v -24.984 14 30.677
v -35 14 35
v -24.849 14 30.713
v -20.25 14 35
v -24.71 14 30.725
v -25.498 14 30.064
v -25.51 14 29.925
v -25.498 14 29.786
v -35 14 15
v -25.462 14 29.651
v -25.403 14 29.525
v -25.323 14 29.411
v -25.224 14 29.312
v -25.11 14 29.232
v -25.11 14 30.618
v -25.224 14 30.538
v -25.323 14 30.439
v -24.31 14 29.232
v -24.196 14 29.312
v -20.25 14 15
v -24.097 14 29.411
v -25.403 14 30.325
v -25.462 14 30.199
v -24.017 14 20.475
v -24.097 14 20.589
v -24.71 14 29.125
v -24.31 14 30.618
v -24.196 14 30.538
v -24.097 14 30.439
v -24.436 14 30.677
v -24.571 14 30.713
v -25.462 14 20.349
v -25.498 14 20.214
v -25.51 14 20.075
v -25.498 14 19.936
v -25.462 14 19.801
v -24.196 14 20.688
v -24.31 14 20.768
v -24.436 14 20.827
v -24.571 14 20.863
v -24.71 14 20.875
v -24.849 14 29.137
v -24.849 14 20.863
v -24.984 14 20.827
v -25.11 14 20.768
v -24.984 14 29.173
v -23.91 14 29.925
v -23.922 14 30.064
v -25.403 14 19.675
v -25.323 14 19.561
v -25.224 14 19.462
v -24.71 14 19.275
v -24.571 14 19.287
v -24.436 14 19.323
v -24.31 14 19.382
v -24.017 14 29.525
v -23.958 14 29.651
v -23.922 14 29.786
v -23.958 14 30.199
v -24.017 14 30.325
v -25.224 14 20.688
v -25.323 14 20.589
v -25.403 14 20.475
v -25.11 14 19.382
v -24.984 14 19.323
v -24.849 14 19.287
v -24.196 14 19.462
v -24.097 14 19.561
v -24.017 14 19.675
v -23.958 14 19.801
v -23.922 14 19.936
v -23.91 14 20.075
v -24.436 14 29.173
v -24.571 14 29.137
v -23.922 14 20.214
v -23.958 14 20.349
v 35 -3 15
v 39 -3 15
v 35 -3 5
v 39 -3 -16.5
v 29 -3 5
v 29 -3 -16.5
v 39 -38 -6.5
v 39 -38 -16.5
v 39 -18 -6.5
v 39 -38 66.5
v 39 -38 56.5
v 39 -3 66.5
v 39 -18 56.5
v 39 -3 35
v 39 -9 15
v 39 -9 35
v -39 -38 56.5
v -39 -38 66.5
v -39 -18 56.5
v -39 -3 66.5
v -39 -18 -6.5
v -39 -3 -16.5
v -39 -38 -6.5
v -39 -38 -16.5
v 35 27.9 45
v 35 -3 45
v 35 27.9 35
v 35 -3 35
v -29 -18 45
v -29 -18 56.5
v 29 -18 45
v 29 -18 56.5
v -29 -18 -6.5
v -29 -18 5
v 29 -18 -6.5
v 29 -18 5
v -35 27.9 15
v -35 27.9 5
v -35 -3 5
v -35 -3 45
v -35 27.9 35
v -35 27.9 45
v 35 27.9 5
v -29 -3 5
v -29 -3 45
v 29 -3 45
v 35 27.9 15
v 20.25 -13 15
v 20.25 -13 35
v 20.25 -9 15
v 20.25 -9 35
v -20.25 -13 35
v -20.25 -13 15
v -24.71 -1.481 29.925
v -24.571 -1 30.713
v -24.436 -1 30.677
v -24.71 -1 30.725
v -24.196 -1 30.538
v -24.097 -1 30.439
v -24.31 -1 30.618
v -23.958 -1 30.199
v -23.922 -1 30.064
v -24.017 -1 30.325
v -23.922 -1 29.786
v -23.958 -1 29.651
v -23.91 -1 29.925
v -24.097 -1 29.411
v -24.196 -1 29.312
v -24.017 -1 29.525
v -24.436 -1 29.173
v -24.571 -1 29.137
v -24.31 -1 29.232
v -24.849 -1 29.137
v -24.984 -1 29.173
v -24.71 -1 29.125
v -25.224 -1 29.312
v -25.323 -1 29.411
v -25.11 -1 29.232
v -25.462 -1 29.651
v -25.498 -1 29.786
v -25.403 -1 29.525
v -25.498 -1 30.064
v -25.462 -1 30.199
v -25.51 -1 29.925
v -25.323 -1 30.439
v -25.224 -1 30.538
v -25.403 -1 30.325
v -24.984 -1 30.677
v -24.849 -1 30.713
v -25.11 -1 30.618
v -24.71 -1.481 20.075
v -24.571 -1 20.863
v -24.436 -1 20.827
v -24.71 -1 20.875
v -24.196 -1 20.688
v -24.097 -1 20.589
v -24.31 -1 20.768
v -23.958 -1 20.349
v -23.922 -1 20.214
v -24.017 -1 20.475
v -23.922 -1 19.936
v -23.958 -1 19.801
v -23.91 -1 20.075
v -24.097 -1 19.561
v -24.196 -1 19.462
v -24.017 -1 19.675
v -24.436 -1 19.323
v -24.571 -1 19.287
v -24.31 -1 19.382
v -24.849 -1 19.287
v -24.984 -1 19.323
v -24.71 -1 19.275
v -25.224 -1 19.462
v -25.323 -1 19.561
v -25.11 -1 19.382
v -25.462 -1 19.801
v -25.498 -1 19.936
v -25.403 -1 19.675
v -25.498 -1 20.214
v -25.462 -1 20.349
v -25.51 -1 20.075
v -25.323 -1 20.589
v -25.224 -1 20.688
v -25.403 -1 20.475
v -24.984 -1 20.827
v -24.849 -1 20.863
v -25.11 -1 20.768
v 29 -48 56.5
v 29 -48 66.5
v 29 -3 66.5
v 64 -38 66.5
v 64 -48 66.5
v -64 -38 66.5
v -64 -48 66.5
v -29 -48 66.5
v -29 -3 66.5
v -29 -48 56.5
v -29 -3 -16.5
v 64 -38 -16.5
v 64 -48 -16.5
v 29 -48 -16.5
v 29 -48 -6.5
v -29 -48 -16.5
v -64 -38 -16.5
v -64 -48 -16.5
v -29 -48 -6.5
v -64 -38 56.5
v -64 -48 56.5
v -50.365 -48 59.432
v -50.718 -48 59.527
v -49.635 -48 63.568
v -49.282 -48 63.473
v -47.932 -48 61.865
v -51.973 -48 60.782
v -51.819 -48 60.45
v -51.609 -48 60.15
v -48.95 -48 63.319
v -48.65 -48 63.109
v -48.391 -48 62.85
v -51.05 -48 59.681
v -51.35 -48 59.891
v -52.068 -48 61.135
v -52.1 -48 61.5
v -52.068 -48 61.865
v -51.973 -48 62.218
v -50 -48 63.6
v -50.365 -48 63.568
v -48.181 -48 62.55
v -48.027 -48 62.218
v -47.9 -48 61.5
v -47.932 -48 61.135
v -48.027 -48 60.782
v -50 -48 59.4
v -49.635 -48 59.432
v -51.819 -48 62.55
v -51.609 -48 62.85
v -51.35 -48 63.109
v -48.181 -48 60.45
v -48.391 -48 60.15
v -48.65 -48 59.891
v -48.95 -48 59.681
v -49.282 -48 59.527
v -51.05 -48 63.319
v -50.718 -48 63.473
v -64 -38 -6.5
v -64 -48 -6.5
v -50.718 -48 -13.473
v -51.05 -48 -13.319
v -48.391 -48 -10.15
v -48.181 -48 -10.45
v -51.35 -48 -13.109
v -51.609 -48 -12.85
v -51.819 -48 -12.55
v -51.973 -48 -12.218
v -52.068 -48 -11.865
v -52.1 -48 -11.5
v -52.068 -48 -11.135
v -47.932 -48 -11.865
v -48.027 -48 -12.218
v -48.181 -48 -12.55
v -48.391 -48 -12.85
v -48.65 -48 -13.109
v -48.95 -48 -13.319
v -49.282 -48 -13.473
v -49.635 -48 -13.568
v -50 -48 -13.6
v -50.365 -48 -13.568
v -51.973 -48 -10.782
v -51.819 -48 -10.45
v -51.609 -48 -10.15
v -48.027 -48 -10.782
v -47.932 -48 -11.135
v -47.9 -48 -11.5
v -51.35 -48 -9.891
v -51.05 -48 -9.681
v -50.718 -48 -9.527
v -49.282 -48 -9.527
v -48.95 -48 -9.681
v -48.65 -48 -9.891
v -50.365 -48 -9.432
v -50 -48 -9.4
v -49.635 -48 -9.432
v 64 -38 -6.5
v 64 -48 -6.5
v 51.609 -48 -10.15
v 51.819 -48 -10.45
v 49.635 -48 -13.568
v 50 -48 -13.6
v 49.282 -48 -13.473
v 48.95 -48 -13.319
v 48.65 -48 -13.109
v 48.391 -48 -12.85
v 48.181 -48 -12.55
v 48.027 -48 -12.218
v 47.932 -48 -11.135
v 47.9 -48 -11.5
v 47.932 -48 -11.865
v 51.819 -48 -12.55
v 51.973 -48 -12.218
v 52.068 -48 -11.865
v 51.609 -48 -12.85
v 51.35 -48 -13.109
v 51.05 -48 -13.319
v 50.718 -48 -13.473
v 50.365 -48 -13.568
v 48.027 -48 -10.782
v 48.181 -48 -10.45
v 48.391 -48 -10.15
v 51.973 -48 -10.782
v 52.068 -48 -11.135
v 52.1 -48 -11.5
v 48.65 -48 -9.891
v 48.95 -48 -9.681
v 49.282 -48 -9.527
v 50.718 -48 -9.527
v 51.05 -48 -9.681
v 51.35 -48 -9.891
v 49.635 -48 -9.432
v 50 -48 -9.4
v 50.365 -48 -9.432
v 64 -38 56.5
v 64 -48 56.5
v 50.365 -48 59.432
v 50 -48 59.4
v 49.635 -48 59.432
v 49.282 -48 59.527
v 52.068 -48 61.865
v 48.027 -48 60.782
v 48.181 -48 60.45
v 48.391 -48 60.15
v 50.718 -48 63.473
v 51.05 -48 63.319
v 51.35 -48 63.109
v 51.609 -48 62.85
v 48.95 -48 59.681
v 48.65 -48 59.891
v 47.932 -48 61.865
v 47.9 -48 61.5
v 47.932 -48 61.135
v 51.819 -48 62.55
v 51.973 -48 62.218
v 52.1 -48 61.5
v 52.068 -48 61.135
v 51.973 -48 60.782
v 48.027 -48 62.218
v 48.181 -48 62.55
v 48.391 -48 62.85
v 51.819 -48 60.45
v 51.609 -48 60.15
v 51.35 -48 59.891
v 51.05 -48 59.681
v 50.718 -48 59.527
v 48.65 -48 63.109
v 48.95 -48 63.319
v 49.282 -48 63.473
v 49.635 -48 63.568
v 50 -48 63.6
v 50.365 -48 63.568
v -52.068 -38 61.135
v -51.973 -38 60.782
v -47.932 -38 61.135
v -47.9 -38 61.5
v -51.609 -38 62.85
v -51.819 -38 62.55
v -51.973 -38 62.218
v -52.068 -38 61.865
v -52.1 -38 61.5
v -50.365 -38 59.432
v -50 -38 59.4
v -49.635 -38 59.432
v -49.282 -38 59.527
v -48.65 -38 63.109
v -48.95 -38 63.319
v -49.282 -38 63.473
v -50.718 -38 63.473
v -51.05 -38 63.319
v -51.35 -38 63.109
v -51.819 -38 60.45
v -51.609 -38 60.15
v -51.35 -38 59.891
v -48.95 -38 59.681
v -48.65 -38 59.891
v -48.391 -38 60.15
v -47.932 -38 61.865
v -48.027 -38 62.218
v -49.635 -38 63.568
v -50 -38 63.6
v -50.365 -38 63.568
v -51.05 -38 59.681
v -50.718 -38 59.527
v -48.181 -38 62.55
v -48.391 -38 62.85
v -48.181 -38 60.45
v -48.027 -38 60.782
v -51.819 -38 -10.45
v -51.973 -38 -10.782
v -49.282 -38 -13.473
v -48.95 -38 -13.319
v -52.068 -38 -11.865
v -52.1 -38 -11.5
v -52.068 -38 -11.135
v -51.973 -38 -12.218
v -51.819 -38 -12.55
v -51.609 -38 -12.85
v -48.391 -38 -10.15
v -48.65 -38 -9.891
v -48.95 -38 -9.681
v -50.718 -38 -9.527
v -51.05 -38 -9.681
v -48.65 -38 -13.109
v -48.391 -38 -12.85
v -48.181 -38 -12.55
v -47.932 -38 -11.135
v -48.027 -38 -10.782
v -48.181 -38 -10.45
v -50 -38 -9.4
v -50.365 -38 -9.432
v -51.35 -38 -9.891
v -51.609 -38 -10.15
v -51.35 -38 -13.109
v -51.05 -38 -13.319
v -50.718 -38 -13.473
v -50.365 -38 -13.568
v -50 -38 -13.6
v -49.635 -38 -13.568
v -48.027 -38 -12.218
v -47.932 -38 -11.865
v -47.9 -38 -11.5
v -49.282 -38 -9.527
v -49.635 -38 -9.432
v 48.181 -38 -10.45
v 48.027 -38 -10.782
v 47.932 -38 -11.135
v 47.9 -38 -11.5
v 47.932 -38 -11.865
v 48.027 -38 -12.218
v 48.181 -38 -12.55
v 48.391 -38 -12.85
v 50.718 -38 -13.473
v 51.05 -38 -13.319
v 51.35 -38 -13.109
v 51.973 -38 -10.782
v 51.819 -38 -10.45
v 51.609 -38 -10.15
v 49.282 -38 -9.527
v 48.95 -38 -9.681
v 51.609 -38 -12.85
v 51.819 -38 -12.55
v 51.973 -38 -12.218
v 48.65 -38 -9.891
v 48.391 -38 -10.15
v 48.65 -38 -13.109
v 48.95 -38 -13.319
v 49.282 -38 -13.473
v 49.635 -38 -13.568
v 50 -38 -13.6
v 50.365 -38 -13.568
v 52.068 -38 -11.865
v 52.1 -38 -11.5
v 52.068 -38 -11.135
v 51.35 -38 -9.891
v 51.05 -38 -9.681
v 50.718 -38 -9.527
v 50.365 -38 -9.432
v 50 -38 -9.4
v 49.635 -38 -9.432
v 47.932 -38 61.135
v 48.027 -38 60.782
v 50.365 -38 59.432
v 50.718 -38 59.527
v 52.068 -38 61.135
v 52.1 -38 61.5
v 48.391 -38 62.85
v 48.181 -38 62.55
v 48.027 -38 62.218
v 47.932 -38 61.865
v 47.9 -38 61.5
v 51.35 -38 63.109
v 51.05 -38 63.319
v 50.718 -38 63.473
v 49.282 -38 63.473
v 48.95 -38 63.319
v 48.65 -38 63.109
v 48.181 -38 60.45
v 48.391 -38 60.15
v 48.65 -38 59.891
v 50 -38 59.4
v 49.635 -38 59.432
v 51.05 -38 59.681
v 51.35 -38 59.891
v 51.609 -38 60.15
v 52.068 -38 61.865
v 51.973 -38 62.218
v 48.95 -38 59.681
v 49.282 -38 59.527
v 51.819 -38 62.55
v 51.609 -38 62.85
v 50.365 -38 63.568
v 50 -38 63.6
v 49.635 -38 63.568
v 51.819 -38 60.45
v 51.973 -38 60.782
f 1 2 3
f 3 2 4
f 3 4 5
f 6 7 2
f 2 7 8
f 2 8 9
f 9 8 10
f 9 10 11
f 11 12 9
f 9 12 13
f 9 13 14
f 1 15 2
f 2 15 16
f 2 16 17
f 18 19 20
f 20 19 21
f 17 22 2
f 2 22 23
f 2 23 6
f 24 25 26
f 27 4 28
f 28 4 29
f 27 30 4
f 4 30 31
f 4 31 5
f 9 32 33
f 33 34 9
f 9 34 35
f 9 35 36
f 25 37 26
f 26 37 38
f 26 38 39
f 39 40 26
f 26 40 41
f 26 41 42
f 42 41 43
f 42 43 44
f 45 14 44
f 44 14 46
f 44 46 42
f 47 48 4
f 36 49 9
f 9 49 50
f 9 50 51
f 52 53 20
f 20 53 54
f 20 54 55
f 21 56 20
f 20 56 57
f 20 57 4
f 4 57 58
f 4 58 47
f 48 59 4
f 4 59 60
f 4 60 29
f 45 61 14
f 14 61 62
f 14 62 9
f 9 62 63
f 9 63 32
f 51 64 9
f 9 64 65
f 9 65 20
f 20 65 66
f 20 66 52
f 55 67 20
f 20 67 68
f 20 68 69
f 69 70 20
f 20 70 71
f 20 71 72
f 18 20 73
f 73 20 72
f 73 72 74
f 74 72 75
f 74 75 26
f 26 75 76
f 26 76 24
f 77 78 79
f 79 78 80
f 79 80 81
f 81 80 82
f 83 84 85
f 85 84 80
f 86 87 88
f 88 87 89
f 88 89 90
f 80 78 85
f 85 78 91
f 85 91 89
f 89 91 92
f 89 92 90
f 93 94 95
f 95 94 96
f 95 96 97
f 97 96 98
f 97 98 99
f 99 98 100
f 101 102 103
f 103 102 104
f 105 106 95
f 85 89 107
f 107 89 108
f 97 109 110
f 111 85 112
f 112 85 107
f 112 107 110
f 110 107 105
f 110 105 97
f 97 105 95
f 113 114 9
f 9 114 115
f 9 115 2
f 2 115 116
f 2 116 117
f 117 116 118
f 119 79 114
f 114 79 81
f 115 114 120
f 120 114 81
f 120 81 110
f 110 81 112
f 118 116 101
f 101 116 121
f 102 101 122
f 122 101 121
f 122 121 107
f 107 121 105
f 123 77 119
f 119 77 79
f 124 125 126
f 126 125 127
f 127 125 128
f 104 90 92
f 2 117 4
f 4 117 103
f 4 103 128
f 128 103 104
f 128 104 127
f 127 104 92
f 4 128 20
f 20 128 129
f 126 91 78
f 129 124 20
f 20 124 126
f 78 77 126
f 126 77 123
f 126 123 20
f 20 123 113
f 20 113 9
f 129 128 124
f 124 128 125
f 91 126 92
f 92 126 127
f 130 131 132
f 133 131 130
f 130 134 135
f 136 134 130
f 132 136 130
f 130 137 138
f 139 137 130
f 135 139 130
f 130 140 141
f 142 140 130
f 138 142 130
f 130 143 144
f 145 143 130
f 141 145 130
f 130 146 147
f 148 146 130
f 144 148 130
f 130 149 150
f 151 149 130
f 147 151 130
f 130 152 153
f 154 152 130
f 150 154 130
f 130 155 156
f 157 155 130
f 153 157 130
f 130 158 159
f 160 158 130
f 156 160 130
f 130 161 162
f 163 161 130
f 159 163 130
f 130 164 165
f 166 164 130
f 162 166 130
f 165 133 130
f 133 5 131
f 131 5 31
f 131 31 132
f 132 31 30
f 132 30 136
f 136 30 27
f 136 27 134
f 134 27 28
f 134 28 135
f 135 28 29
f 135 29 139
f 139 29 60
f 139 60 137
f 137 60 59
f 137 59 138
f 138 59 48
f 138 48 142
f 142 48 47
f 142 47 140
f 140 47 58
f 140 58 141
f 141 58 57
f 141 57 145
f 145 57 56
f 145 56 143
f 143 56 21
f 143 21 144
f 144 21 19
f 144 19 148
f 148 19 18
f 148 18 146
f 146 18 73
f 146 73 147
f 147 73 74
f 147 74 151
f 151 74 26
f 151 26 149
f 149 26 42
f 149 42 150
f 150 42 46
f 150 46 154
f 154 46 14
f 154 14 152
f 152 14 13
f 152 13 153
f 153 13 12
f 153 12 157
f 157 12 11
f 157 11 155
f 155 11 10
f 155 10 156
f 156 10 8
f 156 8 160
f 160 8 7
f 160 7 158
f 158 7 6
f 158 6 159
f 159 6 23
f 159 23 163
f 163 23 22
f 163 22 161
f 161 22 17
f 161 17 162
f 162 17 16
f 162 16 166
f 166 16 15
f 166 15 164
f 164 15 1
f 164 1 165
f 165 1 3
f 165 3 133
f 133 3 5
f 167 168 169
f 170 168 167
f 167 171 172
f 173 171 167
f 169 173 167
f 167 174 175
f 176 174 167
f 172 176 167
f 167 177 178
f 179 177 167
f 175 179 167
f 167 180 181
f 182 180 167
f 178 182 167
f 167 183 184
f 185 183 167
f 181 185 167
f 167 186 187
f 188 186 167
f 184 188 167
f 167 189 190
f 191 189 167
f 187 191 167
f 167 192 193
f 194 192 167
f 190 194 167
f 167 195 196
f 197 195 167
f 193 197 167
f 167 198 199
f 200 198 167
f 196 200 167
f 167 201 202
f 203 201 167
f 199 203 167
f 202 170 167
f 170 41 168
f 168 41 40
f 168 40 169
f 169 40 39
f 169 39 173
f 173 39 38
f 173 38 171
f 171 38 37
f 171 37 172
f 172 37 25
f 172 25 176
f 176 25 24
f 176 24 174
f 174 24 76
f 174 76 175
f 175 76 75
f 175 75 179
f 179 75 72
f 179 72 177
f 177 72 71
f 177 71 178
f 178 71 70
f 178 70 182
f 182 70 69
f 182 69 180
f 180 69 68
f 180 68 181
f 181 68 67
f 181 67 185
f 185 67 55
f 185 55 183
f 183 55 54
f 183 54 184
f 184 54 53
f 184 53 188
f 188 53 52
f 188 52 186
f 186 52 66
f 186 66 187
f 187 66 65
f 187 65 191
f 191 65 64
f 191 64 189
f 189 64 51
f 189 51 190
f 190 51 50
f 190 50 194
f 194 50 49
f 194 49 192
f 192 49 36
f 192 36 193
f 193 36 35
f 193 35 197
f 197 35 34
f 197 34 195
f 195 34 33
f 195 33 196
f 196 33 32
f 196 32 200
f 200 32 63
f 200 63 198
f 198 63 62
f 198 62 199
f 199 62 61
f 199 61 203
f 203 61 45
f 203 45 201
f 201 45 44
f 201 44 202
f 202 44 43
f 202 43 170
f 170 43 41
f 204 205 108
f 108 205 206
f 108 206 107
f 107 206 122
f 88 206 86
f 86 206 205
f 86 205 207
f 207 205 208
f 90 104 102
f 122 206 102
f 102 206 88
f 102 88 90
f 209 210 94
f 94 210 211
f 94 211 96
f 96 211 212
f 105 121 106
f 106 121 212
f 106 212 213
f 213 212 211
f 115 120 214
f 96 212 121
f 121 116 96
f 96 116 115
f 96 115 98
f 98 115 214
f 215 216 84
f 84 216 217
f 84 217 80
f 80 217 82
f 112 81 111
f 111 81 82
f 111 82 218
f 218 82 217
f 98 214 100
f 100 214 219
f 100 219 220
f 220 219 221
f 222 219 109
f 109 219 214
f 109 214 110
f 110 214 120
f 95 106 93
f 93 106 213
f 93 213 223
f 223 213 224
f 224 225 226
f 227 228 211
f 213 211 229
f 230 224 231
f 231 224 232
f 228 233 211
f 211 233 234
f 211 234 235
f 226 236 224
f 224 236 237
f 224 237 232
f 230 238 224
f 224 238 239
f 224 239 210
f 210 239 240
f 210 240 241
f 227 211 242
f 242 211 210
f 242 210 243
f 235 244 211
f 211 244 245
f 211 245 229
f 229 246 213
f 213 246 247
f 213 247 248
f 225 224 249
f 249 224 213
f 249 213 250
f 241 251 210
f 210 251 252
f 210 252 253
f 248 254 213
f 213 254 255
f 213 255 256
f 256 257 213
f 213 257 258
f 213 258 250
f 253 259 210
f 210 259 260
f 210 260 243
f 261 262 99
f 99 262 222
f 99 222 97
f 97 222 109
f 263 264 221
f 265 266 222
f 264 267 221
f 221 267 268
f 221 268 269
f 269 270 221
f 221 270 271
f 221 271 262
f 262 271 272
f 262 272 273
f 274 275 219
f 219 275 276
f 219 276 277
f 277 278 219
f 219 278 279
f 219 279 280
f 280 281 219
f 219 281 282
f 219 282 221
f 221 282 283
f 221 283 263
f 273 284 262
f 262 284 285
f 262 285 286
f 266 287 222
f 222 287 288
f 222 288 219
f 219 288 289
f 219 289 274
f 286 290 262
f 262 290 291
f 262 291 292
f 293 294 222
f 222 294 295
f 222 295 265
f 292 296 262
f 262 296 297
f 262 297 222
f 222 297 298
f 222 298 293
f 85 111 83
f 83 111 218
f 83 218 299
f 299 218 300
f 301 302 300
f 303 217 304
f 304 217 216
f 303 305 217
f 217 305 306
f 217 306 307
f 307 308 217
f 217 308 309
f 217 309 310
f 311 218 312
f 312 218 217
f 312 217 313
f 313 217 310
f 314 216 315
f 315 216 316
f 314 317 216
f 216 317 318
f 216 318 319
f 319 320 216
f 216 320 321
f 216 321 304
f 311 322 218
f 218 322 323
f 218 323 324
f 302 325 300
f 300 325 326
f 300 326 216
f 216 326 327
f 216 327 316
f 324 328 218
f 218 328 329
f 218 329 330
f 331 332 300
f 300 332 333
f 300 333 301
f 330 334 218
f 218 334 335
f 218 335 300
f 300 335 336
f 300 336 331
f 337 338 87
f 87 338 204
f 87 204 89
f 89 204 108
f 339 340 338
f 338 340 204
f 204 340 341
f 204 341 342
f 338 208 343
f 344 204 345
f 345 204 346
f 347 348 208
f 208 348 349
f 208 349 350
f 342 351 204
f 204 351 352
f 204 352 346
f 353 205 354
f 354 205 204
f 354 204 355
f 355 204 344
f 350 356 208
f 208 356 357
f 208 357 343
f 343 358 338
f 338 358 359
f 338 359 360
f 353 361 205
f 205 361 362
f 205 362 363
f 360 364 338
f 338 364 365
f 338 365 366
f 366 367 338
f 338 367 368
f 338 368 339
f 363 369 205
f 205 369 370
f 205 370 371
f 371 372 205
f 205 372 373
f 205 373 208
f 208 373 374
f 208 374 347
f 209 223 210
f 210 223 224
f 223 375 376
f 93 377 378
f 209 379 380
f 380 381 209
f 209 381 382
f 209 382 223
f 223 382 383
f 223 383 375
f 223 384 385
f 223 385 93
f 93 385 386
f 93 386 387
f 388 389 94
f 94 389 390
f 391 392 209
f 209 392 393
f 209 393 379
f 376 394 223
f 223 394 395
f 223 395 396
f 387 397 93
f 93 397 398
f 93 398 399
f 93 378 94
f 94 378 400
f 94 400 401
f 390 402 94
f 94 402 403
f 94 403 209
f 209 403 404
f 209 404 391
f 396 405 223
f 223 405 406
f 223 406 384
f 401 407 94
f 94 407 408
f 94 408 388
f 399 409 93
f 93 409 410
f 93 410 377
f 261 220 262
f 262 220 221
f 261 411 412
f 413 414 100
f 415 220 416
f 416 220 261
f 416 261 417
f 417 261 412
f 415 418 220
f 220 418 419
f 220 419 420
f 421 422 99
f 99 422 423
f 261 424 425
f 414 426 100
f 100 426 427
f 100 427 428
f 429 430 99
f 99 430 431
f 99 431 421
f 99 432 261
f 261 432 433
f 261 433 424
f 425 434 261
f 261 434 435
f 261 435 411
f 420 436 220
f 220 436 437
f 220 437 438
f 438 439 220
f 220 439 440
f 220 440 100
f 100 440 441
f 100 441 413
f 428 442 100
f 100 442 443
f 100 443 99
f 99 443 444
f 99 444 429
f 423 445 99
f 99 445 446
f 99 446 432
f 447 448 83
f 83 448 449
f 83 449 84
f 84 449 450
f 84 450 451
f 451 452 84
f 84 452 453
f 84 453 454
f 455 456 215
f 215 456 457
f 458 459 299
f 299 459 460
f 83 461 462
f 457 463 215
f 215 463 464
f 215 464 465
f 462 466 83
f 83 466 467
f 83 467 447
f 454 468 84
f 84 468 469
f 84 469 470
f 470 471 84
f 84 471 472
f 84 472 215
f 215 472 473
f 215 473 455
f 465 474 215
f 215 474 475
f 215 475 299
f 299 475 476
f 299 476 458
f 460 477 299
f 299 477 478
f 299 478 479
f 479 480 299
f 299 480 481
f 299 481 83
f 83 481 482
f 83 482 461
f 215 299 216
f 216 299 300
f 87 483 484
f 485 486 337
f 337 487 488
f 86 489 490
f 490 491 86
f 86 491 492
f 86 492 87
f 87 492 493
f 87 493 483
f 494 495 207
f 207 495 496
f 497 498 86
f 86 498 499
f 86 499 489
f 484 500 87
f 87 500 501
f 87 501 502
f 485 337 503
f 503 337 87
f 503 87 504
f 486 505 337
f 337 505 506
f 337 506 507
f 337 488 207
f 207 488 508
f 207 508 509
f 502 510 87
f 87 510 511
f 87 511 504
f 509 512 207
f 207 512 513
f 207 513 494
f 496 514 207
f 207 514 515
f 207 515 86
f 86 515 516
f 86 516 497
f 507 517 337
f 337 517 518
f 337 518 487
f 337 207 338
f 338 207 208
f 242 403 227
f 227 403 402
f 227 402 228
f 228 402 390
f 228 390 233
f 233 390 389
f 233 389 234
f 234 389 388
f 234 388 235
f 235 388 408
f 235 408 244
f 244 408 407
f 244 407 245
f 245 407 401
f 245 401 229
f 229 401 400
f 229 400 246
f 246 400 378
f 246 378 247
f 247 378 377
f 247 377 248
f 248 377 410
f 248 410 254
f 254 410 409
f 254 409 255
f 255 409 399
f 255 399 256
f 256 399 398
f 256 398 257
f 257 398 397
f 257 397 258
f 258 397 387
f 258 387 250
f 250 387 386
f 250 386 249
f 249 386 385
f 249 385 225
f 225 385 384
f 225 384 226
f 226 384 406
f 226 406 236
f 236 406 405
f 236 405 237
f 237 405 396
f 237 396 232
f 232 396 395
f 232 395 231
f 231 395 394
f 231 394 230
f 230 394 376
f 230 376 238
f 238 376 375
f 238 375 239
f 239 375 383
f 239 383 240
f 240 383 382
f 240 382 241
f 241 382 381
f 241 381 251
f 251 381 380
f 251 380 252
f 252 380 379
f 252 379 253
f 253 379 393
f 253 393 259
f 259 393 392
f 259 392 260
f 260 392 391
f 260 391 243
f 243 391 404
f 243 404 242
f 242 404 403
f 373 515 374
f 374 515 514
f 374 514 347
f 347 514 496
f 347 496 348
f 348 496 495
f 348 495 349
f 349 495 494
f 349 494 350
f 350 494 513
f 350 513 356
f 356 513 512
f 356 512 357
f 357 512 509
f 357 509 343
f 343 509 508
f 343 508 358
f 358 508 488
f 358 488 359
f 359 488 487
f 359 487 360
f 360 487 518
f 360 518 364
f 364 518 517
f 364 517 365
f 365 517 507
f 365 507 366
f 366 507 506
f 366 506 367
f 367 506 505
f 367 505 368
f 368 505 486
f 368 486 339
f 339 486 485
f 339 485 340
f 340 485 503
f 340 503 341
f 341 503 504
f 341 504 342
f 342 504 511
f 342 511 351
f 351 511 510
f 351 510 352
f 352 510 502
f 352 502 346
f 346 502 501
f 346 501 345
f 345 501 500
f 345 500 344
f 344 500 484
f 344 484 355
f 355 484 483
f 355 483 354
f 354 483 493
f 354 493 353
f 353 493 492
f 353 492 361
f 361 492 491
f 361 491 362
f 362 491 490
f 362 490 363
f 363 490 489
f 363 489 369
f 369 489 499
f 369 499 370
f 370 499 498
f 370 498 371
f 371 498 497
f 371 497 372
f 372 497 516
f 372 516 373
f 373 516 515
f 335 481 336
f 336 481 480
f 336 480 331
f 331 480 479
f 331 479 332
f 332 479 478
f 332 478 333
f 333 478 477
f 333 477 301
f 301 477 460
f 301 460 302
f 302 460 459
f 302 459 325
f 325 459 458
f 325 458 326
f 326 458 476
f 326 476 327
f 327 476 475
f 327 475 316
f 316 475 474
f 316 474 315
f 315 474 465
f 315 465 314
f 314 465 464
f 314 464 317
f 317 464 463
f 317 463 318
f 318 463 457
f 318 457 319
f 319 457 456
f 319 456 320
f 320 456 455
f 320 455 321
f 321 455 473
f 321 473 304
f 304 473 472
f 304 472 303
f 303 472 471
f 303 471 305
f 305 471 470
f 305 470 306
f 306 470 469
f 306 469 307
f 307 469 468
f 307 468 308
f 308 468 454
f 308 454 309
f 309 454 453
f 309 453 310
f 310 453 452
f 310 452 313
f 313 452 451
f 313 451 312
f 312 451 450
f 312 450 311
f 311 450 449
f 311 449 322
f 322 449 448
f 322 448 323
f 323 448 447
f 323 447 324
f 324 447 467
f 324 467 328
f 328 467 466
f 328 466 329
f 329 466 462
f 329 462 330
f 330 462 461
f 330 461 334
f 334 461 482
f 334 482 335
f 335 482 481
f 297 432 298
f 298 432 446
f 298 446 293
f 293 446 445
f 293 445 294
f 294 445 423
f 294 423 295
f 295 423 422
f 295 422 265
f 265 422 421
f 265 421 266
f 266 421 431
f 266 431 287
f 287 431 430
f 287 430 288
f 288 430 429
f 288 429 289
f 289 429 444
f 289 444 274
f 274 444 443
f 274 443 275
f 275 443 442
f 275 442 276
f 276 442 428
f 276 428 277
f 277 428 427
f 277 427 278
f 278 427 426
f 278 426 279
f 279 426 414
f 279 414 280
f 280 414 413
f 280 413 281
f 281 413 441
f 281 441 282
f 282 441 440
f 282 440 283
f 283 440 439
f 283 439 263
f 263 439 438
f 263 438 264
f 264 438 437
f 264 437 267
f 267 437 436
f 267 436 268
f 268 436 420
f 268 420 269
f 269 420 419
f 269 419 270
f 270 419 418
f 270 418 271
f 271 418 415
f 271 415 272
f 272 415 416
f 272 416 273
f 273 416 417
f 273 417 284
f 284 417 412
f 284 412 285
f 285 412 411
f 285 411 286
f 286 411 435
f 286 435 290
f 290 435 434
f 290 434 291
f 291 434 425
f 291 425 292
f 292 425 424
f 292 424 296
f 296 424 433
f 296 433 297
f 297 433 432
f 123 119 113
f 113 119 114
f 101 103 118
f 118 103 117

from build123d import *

# Parameters (mm, degrees)
ESQUISSE1_W                          = 70
ESQUISSE1_H                          = 50
BOSS_EXTRU_1_DEPTH                   = 50
ESQUISSE2_W                          = 40.5
ESQUISSE2_H                          = 20
ENL_V_MAT_EXTRU_1_DEPTH              = 38
ESQUISSE3_W                          = 9.502474521
ESQUISSE3_H                          = 20
ENL_V_MAT_EXTRU_2_DEPTH              = 11
ESQUISSE4_R                          = 60.076490873
ESQUISSE4_R_2                        = 49.5
BOSS_EXTRU_2_DEPTH                   = 50
ESQUISSE5_W                          = 60
ESQUISSE5_H                          = 40
ENL_V_MAT_EXTRU_3_DEPTH              = 24
R_P_TITION_CIRCULAIRE1_COUNT         = 5
ESQUISSE12_W                         = 74.3
ESQUISSE12_H                         = 74.3
BOSS_EXTRU_7_DEPTH                   = 28
ESQUISSE13_W                         = 160
ESQUISSE13_H                         = 18
BOSS_EXTRU_8_DEPTH                   = 10
ESQUISSE15_R                         = 60.076490873
BOSS_EXTRU_9_DEPTH                   = 5
ESQUISSE16_W                         = 60
ESQUISSE16_H                         = 70
ENL_V_MAT_EXTRU_4_DEPTH              = 28
ENL_V_MAT_EXTRU_5_REACH              = 156.276
ESQUISSE17_W                         = 60.3
ESQUISSE17_H                         = 28
ENL_V_MAT_EXTRU_6_REACH              = 138.609
ESQUISSE18_W                         = 54.3
ESQUISSE18_H                         = 15.510808694
TROU_TARAUD_M5X0_82_D                = 4.2
TROU_TARAUD_M5X0_82_DEPTH            = 54.927
TROU_TARAUD_M5X0_82_TIP              = 1.2618073
TROU_TARAUD_M5X0_83_D                = 4.2
TROU_TARAUD_M5X0_83_DEPTH            = 54.927
TROU_TARAUD_M5X0_83_TIP              = 1.2618073
CONG_1_R                             = 10
ESQUISSE25_W                         = 16.470730929
ESQUISSE25_H                         = 20
ENL_V_MAT_EXTRU_7_DEPTH              = 34
TROU_TARAUD_M2X0_41_D                = 1.6
TROU_TARAUD_M2X0_41_DEPTH            = 15
TROU_TARAUD_M2X0_41_TIP              = 0.480688495
ESQUISSE28_W                         = 183.397651828
ESQUISSE28_H                         = 123.598647098
ESQUISSE28_W_2                       = 70
ESQUISSE28_H_2                       = 50
ENL_V_MAT_EXTRU_9_DEPTH              = 78
ESQUISSE29_W                         = 76.828034685
ESQUISSE29_H                         = 56.156318878
ENL_V_MAT_EXTRU_10_DEPTH             = 7
ESQUISSE30_W                         = 96.69394631
ESQUISSE30_H                         = 62.030078765
ESQUISSE30_W_2                       = 70
ESQUISSE30_H_2                       = 40
ENL_V_MAT_EXTRU_12_DEPTH             = 43
BOSS_EXTRU_10_DEPTH                  = 15
ESQUISSE35_W                         = 10
ESQUISSE35_H                         = 10
BOSS_EXTRU_12_DEPTH                  = 30
ESQUISSE36_W                         = 10
ESQUISSE36_H                         = 15
BOSS_EXTRU_13_DEPTH                  = 83
ESQUISSE37_W                         = 35
ESQUISSE37_H                         = 10
ESQUISSE37_R                         = 2
BOSS_EXTRU_14_DEPTH                  = 10
ENL_V_MAT_EXTRU_13_REACH             = 119.577
ESQUISSE38_W                         = 51.96710629
ESQUISSE38_H                         = 11.935029196
ENL_V_MAT_EXTRU_13_DIRECTION_2_REACH = 119.577
TROU_TARAUD_M5X0_84_D                = 4.2
ESQUISSE41_W                         = 20
ESQUISSE41_H                         = 6
ENL_V_MAT_EXTRU_14_DEPTH             = 10
ESQUISSE42_W                         = 70
ESQUISSE42_H                         = 10
BOSS_EXTRU_15_DEPTH                  = 13.9


with BuildPart() as part:
    # Esquisse1 → Boss.-Extru.1 (new body)
    with BuildSketch(Plane.XY):
        Rectangle(ESQUISSE1_W, ESQUISSE1_H)
    extrude(amount=BOSS_EXTRU_1_DEPTH)

    # Esquisse2 → Enlèv. mat.-Extru.1 (cut)
    with BuildSketch(Plane(origin=(0, 25, 0), x_dir=(1, 0, 0), z_dir=(0, 1, 0))):
        with Locations((0, -25)):
            Rectangle(ESQUISSE2_W, ESQUISSE2_H)
    extrude(amount=-ENL_V_MAT_EXTRU_1_DEPTH, mode=Mode.SUBTRACT)

    # Esquisse3 → Enlèv. mat.-Extru.2 (cut)
    with BuildSketch(Plane(origin=(0, 25, 0), x_dir=(1, 0, 0), z_dir=(0, 1, 0))):
        with Locations((25.001237261, -25)):
            Rectangle(ESQUISSE3_W, ESQUISSE3_H)
        with Locations((-25.001237261, -25)):
            Rectangle(ESQUISSE3_W, ESQUISSE3_H)
    extrude(amount=-ENL_V_MAT_EXTRU_2_DEPTH, mode=Mode.SUBTRACT)

    # Esquisse4 → Boss.-Extru.2 (add)
    # profile 1 of 7: a face of its own
    with BuildSketch(Plane(origin=(0, 25, 0), x_dir=(1, 0, 0), z_dir=(0, 1, 0))):
        with Locations(Location((0, -25.176679726, 0), (0, 0, 270))):
            Circle(ESQUISSE4_R)
        with Locations(Location((0, -25.176679726, 0), (0, 0, 270))):
            Circle(ESQUISSE4_R_2, mode=Mode.SUBTRACT)
    # profile 2 of 7: a face of its own
    with BuildSketch(Plane(origin=(0, 25, 0), x_dir=(1, 0, 0), z_dir=(0, 1, 0))):
        with BuildLine():
            ThreePointArc((24.673928965, -50), (32.315534297, -38.619381951), (35, -25.176679726))
            ThreePointArc((35, -25.176679726), (32.217729855, -11.501231543), (24.313263828, 0))
            Line((24.313263828, 0), (20.744399349, 0))
            ThreePointArc((20.744399349, 0), (29.503552635, -11.257782921), (32.622006474, -25.176679726))
            ThreePointArc((32.622006474, -25.176679726), (29.619854452, -38.846336948), (21.16596506, -50))
            Line((21.16596506, -50), (24.673928965, -50))
        make_face()
    # profile 3 of 7: a face of its own
    with BuildSketch(Plane(origin=(0, 25, 0), x_dir=(1, 0, 0), z_dir=(0, 1, 0))):
        with BuildLine():
            Line((-20.744399349, 0), (-24.313263828, 0))
            ThreePointArc((-24.313263828, 0), (-34.99908948, -24.924220698), (-24.673928965, -50))
            Line((-24.673928965, -50), (-21.16596506, -50))
            ThreePointArc((-21.16596506, -50), (-32.620847034, -24.901643114), (-20.744399349, 0))
        make_face()
    # profile 4 of 7: a face of its own
    with BuildSketch(Plane(origin=(0, 25, 0), x_dir=(1, 0, 0), z_dir=(0, 1, 0))):
        with BuildLine():
            Line((20.744399349, 0), (24.313263828, 0))
            ThreePointArc((24.313263828, 0), (0, 9.823320274), (-24.313263828, 0))
            Line((-24.313263828, 0), (-20.744399349, 0))
            ThreePointArc((-20.744399349, 0), (0, 7.445326748), (20.744399349, 0))
        make_face()
    # profile 5 of 7: a face of its own
    with BuildSketch(Plane(origin=(0, 25, 0), x_dir=(1, 0, 0), z_dir=(0, 1, 0))):
        with BuildLine():
            ThreePointArc((24.673928965, -50), (32.315534297, -38.619381951), (35, -25.176679726))
            ThreePointArc((35, -25.176679726), (32.217729855, -11.501231543), (24.313263828, 0))
            Line((24.313263828, 0), (20.744399349, 0))
            ThreePointArc((20.744399349, 0), (29.503552635, -11.257782921), (32.622006474, -25.176679726))
            ThreePointArc((32.622006474, -25.176679726), (29.619854452, -38.846336948), (21.16596506, -50))
            Line((21.16596506, -50), (24.673928965, -50))
        make_face()
    # profile 6 of 7: a face of its own
    with BuildSketch(Plane(origin=(0, 25, 0), x_dir=(1, 0, 0), z_dir=(0, 1, 0))):
        with BuildLine():
            Line((-20.744399349, 0), (-24.313263828, 0))
            ThreePointArc((-24.313263828, 0), (-34.99908948, -24.924220698), (-24.673928965, -50))
            Line((-24.673928965, -50), (-21.16596506, -50))
            ThreePointArc((-21.16596506, -50), (-32.620847034, -24.901643114), (-20.744399349, 0))
        make_face()
    # profile 7 of 7: a face of its own
    with BuildSketch(Plane(origin=(0, 25, 0), x_dir=(1, 0, 0), z_dir=(0, 1, 0))):
        with BuildLine():
            ThreePointArc((-24.673928965, -50), (0, -60.176679726), (24.673928965, -50))
            Line((24.673928965, -50), (21.16596506, -50))
            ThreePointArc((21.16596506, -50), (0, -57.798686199), (-21.16596506, -50))
            Line((-21.16596506, -50), (-24.673928965, -50))
        make_face()
    extrude(amount=-BOSS_EXTRU_2_DEPTH)


with BuildPart() as boss_extru_2_piece_1:
    # of the separate pieces the step leaves, piece 1, a body of its own (boss_extru_2_pieces)
    add(part.part.solids().sort_by_distance((0, 25, 85.253170599))[0])

    # Esquisse5 → Enlèv. mat.-Extru.3 (cut)
    with BuildSketch(Plane(origin=(60.076490873, 0, 0), x_dir=(0, 0, -1), z_dir=(1, 0, 0))):
        with Locations((-25.176679726, 0)):
            Rectangle(ESQUISSE5_W, ESQUISSE5_H)
    enl_v_mat_extru_3 = extrude(amount=-ENL_V_MAT_EXTRU_3_DEPTH, mode=Mode.SUBTRACT)

    # Répétition circulaire1: Enlèv. mat.-Extru.3 ×5 about axis
    r_p_tition_circulaire1_axis = Axis((0, 0, 25.176679726), (0, 1, 0))
    for i in range(1, R_P_TITION_CIRCULAIRE1_COUNT):
        add(enl_v_mat_extru_3.rotate(r_p_tition_circulaire1_axis, i * 360 / R_P_TITION_CIRCULAIRE1_COUNT), mode=Mode.SUBTRACT)



with BuildPart() as boss_extru_2_piece_2:
    # of the separate pieces the step leaves, piece 2, a body of its own (boss_extru_2_pieces)
    add(part.part.solids().sort_by_distance((-35, 25, 0))[0])


with BuildPart() as boss_extru_2_piece_1_1:
    add(boss_extru_2_piece_1.part)

    add(boss_extru_2_piece_2.part)  # Boss.-Extru.7 merges Boss.-Extru.2 piece 2
    # Esquisse12 → Boss.-Extru.7 (add)
    with BuildSketch(Plane.XZ.offset(25)):
        with Locations((0, 25.176679726)):
            Rectangle(ESQUISSE12_W, ESQUISSE12_H)
    extrude(amount=BOSS_EXTRU_7_DEPTH)

    # Esquisse13 → Boss.-Extru.8 (add)
    with BuildSketch(Plane.XZ.offset(53)):
        with Locations((0, 71.326679726)):
            Rectangle(ESQUISSE13_W, ESQUISSE13_H)
        with Locations((0, -20.973320274)):
            Rectangle(ESQUISSE13_W, ESQUISSE13_H)
    extrude(amount=-BOSS_EXTRU_8_DEPTH)

    # Esquisse15 → Boss.-Extru.9 (add)
    with BuildSketch(Plane(origin=(0, -20, 0), x_dir=(1, 0, 0), z_dir=(0, 1, 0))):
        with Locations(Location((0, -25.176679726, 0), (0, 0, 270))):
            Circle(ESQUISSE15_R)
    extrude(amount=-BOSS_EXTRU_9_DEPTH)

    # Esquisse16 → Enlèv. mat.-Extru.4 (cut)
    with BuildSketch(Plane.XZ.offset(53)):
        with Locations((3.15, 25.176679726)):
            Rectangle(ESQUISSE16_W, ESQUISSE16_H)
    extrude(amount=-ENL_V_MAT_EXTRU_4_DEPTH, mode=Mode.SUBTRACT)

    # Enlèv. mat.-Extru.5: up to this face of the body (flat: up to its plane)
    enl_v_mat_extru_5_end = Plane(boss_extru_2_piece_1_1.part.faces().sort_by_distance((-37.15, -39, 25.176679726))[0])
    # Esquisse17 → Enlèv. mat.-Extru.5 (cut, up to the picked face)
    with BuildSketch(Plane(origin=(37.15, 0, 0), x_dir=(0, 0, -1), z_dir=(1, 0, 0)), mode=Mode.PRIVATE) as enl_v_mat_extru_5_sk1:
        with Locations((-25.176679726, -39)):
            Rectangle(ESQUISSE17_W, ESQUISSE17_H)
    enl_v_mat_extru_5_tool1 = split(extrude(enl_v_mat_extru_5_sk1.sketch, amount=-ENL_V_MAT_EXTRU_5_REACH, mode=Mode.PRIVATE), bisect_by=enl_v_mat_extru_5_end, keep=Keep.BOTH, mode=Mode.PRIVATE)
    add(enl_v_mat_extru_5_tool1.solids().sort_by(Axis((37.15, -39, 25.17668), (-1, 0, 0)))[0], mode=Mode.SUBTRACT)

    # Enlèv. mat.-Extru.6: up to this face of the body (flat: up to its plane)
    enl_v_mat_extru_6_end = Plane(boss_extru_2_piece_1_1.part.faces().sort_by_distance((0, -34, -11.973320274))[0])
    # Esquisse18 → Enlèv. mat.-Extru.6 (cut, up to the picked face)
    with BuildSketch(Plane.XY.offset(62.326679726), mode=Mode.PRIVATE) as enl_v_mat_extru_6_sk1:
        with Locations((0, -35.244595653)):
            Rectangle(ESQUISSE18_W, ESQUISSE18_H)
    enl_v_mat_extru_6_tool1 = split(extrude(enl_v_mat_extru_6_sk1.sketch, amount=-ENL_V_MAT_EXTRU_6_REACH, mode=Mode.PRIVATE), bisect_by=enl_v_mat_extru_6_end, keep=Keep.BOTH, mode=Mode.PRIVATE)
    add(enl_v_mat_extru_6_tool1.solids().sort_by(Axis((0, -35.244596, 62.32668), (0, 0, -1)))[0], mode=Mode.SUBTRACT)

    # Trou taraudé M5x0.82
    with Locations(Plane(origin=(-57.931903984, -53, -18.999181229), x_dir=(0, 0, -1), z_dir=(0, -1, 0))):
        with Locations((0, 0), (-88.38422, 0.087735642)):
            Hole(TROU_TARAUD_M5X0_82_D / 2, depth=TROU_TARAUD_M5X0_82_DEPTH)
            with Locations((0, 0, -(TROU_TARAUD_M5X0_82_DEPTH + TROU_TARAUD_M5X0_82_TIP / 2))):  # 118° drill point
                Cone(0, TROU_TARAUD_M5X0_82_D / 2, TROU_TARAUD_M5X0_82_TIP, mode=Mode.SUBTRACT)

    # Trou taraudé M5x0.83
    with Locations(Plane(origin=(67.121659864, -53, 69.376817601), x_dir=(0, 0, -1), z_dir=(0, -1, 0))):
        with Locations((0, 0), (88.384296015, 0.049521474)):
            Hole(TROU_TARAUD_M5X0_83_D / 2, depth=TROU_TARAUD_M5X0_83_DEPTH)
            with Locations((0, 0, -(TROU_TARAUD_M5X0_83_DEPTH + TROU_TARAUD_M5X0_83_TIP / 2))):  # 118° drill point
                Cone(0, TROU_TARAUD_M5X0_83_D / 2, TROU_TARAUD_M5X0_83_TIP, mode=Mode.SUBTRACT)

    # Congé1
    cong_1_edges = [boss_extru_2_piece_1_1.edges().sort_by_distance(p)[0] for p in [
        (-32.15, -43, 62.326679726),
        (32.15, -43, -11.973320274),
        (32.15, -43, 62.326679726),
        (-32.15, -43, -11.973320274),
    ]]
    fillet(cong_1_edges, radius=CONG_1_R)

    # Esquisse25 → Enlèv. mat.-Extru.7 (cut)
    with BuildSketch(Plane(origin=(0, 25, 0), x_dir=(1, 0, 0), z_dir=(0, 1, 0))):
        with Locations((26.764634536, -25)):
            Rectangle(ESQUISSE25_W, ESQUISSE25_H)
    extrude(amount=-ENL_V_MAT_EXTRU_7_DEPTH, mode=Mode.SUBTRACT)

    # Trou taraudé M2x0.41
    with Locations(Plane(origin=(-24.71, 14, 20.075), x_dir=(0, 0, 1), z_dir=(0, 1, 0))):
        with Locations((0, 0), (9.85, 0)):
            Hole(TROU_TARAUD_M2X0_41_D / 2, depth=TROU_TARAUD_M2X0_41_DEPTH)
            with Locations((0, 0, -(TROU_TARAUD_M2X0_41_DEPTH + TROU_TARAUD_M2X0_41_TIP / 2))):  # 118° drill point
                Cone(0, TROU_TARAUD_M2X0_41_D / 2, TROU_TARAUD_M2X0_41_TIP, mode=Mode.SUBTRACT)

    # Esquisse28 → Enlèv. mat.-Extru.9 (cut)
    with BuildSketch(Plane(origin=(0, 25, 0), x_dir=(1, 0, 0), z_dir=(0, 1, 0))):
        with Locations((-1.368639193, -26.124199167)):
            Rectangle(ESQUISSE28_W, ESQUISSE28_H)
        with Locations((0, -25)):
            Rectangle(ESQUISSE28_W_2, ESQUISSE28_H_2, mode=Mode.SUBTRACT)
    extrude(amount=-ENL_V_MAT_EXTRU_9_DEPTH, mode=Mode.SUBTRACT)

    # Esquisse29 → Enlèv. mat.-Extru.10 (cut)
    with BuildSketch(Plane.XZ.offset(25)):
        with Locations((-0.165815903, 24.336736391)):
            Rectangle(ESQUISSE29_W, ESQUISSE29_H)
    extrude(amount=-ENL_V_MAT_EXTRU_10_DEPTH, mode=Mode.SUBTRACT)

    # Esquisse30 → Enlèv. mat.-Extru.12 (cut)
    with BuildSketch(Plane(origin=(0, 25, 0), x_dir=(1, 0, 0), z_dir=(0, 1, 0))):
        with Locations((-2.735660047, -26.938439962)):
            Rectangle(ESQUISSE30_W, ESQUISSE30_H)
        with Locations((0, -25)):
            Rectangle(ESQUISSE30_W_2, ESQUISSE30_H_2, mode=Mode.SUBTRACT)
    extrude(amount=-ENL_V_MAT_EXTRU_12_DEPTH, mode=Mode.SUBTRACT)

    # Esquisse32 → Boss.-Extru.10 (add)
    with BuildSketch(Plane.XZ.offset(18)):
        with BuildLine():
            Line((-39, 66.5), (-29, 66.5))
            Line((-29, 66.5), (-29, 45))
            ThreePointArc((-29, 45), (-31.944624802, 42.375028916), (-35, 39.879839382))
            Line((-35, 39.879839382), (-39, 45))
            Line((-39, 45), (-39, 66.5))
        make_face()
        with BuildLine():
            Line((29, 66.5), (29, 45))
            ThreePointArc((29, 45), (31.944624802, 42.375028916), (35, 39.879839382))
            Line((35, 39.879839382), (39, 45))
            Line((39, 45), (39, 66.5))
            Line((39, 66.5), (29, 66.5))
        make_face()
        with BuildLine():
            Line((39, -16.5), (39, 5))
            Line((39, 5), (35, 10.120160618))
            ThreePointArc((35, 10.120160618), (31.944624802, 7.624971084), (29, 5))
            Line((29, 5), (29, -16.5))
            Line((29, -16.5), (39, -16.5))
        make_face()
        with BuildLine():
            Line((-39, 5), (-35, 10.120160618))
            ThreePointArc((-35, 10.120160618), (-31.944624802, 7.624971084), (-29, 5))
            Line((-29, 5), (-29, -16.5))
            Line((-29, -16.5), (-39, -16.5))
            Line((-39, -16.5), (-39, 5))
        make_face()
    extrude(amount=-BOSS_EXTRU_10_DEPTH)

    # Esquisse35 → Boss.-Extru.12 (add)
    with BuildSketch(Plane.XZ.offset(18)):
        with Locations((-34, 61.5)):
            Rectangle(ESQUISSE35_W, ESQUISSE35_H)
        with Locations((-34, -11.5)):
            Rectangle(ESQUISSE35_W, ESQUISSE35_H)
        with Locations((34, -11.5)):
            Rectangle(ESQUISSE35_W, ESQUISSE35_H)
        with Locations((34, 61.5)):
            Rectangle(ESQUISSE35_W, ESQUISSE35_H)
    extrude(amount=BOSS_EXTRU_12_DEPTH)

    # Esquisse36 → Boss.-Extru.13 (add)
    with BuildSketch(Plane.XY.offset(66.5)):
        with Locations((-34, -10.5)):
            Rectangle(ESQUISSE36_W, ESQUISSE36_H)
        with Locations((34, -10.5)):
            Rectangle(ESQUISSE36_W, ESQUISSE36_H)
    extrude(amount=-BOSS_EXTRU_13_DEPTH)

    # Esquisse37 → Boss.-Extru.14 (add)
    # profile 1 of 4: a face of its own
    with BuildSketch(Plane.XZ.offset(48)):
        with Locations((-46.5, -11.5)):
            Rectangle(ESQUISSE37_W, ESQUISSE37_H)
        with Locations(Location((-50, -11.5, 0), (0, 0, 90))):
            Circle(ESQUISSE37_R, mode=Mode.SUBTRACT)
    # profile 2 of 4: a face of its own
    with BuildSketch(Plane.XZ.offset(48)):
        with Locations((-46.5, 61.5)):
            Rectangle(ESQUISSE37_W, ESQUISSE37_H)
        with Locations(Location((-50, 61.5, 0), (0, 0, 270))):
            Circle(ESQUISSE37_R, mode=Mode.SUBTRACT)
    # profile 3 of 4: a face of its own
    with BuildSketch(Plane.XZ.offset(48)):
        with Locations((46.5, -11.5)):
            Rectangle(ESQUISSE37_W, ESQUISSE37_H)
        with Locations(Location((50, -11.5, 0), (0, 0, 270))):
            Circle(ESQUISSE37_R, mode=Mode.SUBTRACT)
    # profile 4 of 4: a face of its own
    with BuildSketch(Plane.XZ.offset(48)):
        with Locations((46.5, 61.5)):
            Rectangle(ESQUISSE37_W, ESQUISSE37_H)
        with Locations(Location((50, 61.5, 0), (0, 0, 90))):
            Circle(ESQUISSE37_R, mode=Mode.SUBTRACT)
    extrude(amount=-BOSS_EXTRU_14_DEPTH)

    # Enlèv. mat.-Extru.13: up to this face of the body (flat: up to its plane)
    enl_v_mat_extru_13_end = Plane(boss_extru_2_piece_1_1.part.faces().sort_by_distance((-35, 11, 25))[0])
    # Esquisse38 → Enlèv. mat.-Extru.13 (cut, up to the picked face)
    with BuildSketch(Plane(origin=(-20.25, 0, 0), x_dir=(0, 0, -1), z_dir=(1, 0, 0)), mode=Mode.PRIVATE) as enl_v_mat_extru_13_sk1:
        with Locations((-27.486464416, 19.967514598)):
            Rectangle(ESQUISSE38_W, ESQUISSE38_H)
    enl_v_mat_extru_13_tool1 = split(extrude(enl_v_mat_extru_13_sk1.sketch, amount=-ENL_V_MAT_EXTRU_13_REACH, mode=Mode.PRIVATE), bisect_by=enl_v_mat_extru_13_end, keep=Keep.BOTH, mode=Mode.PRIVATE)
    add(enl_v_mat_extru_13_tool1.solids().sort_by(Axis((-20.25, 19.967515, 27.486464), (-1, 0, 0)))[0], mode=Mode.SUBTRACT)

    # Enlèv. mat.-Extru.13 direction 2: up to this face of the body (flat: up to its plane)
    enl_v_mat_extru_13_direction_2_end = Plane(boss_extru_2_piece_1_1.part.faces().sort_by_distance((35, 11, 40))[0])
    # Esquisse38 → Enlèv. mat.-Extru.13 direction 2 (cut, up to the picked face)
    with BuildSketch(Plane(origin=(-20.25, 0, 0), x_dir=(0, 0, -1), z_dir=(1, 0, 0)), mode=Mode.PRIVATE) as enl_v_mat_extru_13_direction_2_sk1:
        with Locations((-27.486464416, 19.967514598)):
            Rectangle(ESQUISSE38_W, ESQUISSE38_H)
    enl_v_mat_extru_13_direction_2_tool1 = split(extrude(enl_v_mat_extru_13_direction_2_sk1.sketch, amount=ENL_V_MAT_EXTRU_13_DIRECTION_2_REACH, mode=Mode.PRIVATE), bisect_by=enl_v_mat_extru_13_direction_2_end, keep=Keep.BOTH, mode=Mode.PRIVATE)
    add(enl_v_mat_extru_13_direction_2_tool1.solids().sort_by(Axis((-20.25, 19.967515, 27.486464), (1, 0, 0)))[0], mode=Mode.SUBTRACT)

    # Trou taraudé M5x0.84 (through all)
    with Locations(Plane(origin=(-50, -38, -11.5), x_dir=(0, 0, 1), z_dir=(0, 1, 0))):
        with Locations((0, 0), (0, 100), (73, 100), (73, 0)):
            Hole(TROU_TARAUD_M5X0_84_D / 2)

    # Esquisse41 → Enlèv. mat.-Extru.14 (cut)
    with BuildSketch(Plane.ZY.offset(-29)):
        with Locations((25, -6)):
            Rectangle(ESQUISSE41_W, ESQUISSE41_H)
    extrude(amount=-ENL_V_MAT_EXTRU_14_DEPTH, mode=Mode.SUBTRACT)

    # Esquisse42 → Boss.-Extru.15 (add)
    with BuildSketch(Plane(origin=(0, 14, 0), x_dir=(1, 0, 0), z_dir=(0, 1, 0))):
        with Locations((0, -10)):
            Rectangle(ESQUISSE42_W, ESQUISSE42_H)
        with Locations((0, -40)):
            Rectangle(ESQUISSE42_W, ESQUISSE42_H)
    extrude(amount=BOSS_EXTRU_15_DEPTH)


solid = boss_extru_2_piece_1_1.part
